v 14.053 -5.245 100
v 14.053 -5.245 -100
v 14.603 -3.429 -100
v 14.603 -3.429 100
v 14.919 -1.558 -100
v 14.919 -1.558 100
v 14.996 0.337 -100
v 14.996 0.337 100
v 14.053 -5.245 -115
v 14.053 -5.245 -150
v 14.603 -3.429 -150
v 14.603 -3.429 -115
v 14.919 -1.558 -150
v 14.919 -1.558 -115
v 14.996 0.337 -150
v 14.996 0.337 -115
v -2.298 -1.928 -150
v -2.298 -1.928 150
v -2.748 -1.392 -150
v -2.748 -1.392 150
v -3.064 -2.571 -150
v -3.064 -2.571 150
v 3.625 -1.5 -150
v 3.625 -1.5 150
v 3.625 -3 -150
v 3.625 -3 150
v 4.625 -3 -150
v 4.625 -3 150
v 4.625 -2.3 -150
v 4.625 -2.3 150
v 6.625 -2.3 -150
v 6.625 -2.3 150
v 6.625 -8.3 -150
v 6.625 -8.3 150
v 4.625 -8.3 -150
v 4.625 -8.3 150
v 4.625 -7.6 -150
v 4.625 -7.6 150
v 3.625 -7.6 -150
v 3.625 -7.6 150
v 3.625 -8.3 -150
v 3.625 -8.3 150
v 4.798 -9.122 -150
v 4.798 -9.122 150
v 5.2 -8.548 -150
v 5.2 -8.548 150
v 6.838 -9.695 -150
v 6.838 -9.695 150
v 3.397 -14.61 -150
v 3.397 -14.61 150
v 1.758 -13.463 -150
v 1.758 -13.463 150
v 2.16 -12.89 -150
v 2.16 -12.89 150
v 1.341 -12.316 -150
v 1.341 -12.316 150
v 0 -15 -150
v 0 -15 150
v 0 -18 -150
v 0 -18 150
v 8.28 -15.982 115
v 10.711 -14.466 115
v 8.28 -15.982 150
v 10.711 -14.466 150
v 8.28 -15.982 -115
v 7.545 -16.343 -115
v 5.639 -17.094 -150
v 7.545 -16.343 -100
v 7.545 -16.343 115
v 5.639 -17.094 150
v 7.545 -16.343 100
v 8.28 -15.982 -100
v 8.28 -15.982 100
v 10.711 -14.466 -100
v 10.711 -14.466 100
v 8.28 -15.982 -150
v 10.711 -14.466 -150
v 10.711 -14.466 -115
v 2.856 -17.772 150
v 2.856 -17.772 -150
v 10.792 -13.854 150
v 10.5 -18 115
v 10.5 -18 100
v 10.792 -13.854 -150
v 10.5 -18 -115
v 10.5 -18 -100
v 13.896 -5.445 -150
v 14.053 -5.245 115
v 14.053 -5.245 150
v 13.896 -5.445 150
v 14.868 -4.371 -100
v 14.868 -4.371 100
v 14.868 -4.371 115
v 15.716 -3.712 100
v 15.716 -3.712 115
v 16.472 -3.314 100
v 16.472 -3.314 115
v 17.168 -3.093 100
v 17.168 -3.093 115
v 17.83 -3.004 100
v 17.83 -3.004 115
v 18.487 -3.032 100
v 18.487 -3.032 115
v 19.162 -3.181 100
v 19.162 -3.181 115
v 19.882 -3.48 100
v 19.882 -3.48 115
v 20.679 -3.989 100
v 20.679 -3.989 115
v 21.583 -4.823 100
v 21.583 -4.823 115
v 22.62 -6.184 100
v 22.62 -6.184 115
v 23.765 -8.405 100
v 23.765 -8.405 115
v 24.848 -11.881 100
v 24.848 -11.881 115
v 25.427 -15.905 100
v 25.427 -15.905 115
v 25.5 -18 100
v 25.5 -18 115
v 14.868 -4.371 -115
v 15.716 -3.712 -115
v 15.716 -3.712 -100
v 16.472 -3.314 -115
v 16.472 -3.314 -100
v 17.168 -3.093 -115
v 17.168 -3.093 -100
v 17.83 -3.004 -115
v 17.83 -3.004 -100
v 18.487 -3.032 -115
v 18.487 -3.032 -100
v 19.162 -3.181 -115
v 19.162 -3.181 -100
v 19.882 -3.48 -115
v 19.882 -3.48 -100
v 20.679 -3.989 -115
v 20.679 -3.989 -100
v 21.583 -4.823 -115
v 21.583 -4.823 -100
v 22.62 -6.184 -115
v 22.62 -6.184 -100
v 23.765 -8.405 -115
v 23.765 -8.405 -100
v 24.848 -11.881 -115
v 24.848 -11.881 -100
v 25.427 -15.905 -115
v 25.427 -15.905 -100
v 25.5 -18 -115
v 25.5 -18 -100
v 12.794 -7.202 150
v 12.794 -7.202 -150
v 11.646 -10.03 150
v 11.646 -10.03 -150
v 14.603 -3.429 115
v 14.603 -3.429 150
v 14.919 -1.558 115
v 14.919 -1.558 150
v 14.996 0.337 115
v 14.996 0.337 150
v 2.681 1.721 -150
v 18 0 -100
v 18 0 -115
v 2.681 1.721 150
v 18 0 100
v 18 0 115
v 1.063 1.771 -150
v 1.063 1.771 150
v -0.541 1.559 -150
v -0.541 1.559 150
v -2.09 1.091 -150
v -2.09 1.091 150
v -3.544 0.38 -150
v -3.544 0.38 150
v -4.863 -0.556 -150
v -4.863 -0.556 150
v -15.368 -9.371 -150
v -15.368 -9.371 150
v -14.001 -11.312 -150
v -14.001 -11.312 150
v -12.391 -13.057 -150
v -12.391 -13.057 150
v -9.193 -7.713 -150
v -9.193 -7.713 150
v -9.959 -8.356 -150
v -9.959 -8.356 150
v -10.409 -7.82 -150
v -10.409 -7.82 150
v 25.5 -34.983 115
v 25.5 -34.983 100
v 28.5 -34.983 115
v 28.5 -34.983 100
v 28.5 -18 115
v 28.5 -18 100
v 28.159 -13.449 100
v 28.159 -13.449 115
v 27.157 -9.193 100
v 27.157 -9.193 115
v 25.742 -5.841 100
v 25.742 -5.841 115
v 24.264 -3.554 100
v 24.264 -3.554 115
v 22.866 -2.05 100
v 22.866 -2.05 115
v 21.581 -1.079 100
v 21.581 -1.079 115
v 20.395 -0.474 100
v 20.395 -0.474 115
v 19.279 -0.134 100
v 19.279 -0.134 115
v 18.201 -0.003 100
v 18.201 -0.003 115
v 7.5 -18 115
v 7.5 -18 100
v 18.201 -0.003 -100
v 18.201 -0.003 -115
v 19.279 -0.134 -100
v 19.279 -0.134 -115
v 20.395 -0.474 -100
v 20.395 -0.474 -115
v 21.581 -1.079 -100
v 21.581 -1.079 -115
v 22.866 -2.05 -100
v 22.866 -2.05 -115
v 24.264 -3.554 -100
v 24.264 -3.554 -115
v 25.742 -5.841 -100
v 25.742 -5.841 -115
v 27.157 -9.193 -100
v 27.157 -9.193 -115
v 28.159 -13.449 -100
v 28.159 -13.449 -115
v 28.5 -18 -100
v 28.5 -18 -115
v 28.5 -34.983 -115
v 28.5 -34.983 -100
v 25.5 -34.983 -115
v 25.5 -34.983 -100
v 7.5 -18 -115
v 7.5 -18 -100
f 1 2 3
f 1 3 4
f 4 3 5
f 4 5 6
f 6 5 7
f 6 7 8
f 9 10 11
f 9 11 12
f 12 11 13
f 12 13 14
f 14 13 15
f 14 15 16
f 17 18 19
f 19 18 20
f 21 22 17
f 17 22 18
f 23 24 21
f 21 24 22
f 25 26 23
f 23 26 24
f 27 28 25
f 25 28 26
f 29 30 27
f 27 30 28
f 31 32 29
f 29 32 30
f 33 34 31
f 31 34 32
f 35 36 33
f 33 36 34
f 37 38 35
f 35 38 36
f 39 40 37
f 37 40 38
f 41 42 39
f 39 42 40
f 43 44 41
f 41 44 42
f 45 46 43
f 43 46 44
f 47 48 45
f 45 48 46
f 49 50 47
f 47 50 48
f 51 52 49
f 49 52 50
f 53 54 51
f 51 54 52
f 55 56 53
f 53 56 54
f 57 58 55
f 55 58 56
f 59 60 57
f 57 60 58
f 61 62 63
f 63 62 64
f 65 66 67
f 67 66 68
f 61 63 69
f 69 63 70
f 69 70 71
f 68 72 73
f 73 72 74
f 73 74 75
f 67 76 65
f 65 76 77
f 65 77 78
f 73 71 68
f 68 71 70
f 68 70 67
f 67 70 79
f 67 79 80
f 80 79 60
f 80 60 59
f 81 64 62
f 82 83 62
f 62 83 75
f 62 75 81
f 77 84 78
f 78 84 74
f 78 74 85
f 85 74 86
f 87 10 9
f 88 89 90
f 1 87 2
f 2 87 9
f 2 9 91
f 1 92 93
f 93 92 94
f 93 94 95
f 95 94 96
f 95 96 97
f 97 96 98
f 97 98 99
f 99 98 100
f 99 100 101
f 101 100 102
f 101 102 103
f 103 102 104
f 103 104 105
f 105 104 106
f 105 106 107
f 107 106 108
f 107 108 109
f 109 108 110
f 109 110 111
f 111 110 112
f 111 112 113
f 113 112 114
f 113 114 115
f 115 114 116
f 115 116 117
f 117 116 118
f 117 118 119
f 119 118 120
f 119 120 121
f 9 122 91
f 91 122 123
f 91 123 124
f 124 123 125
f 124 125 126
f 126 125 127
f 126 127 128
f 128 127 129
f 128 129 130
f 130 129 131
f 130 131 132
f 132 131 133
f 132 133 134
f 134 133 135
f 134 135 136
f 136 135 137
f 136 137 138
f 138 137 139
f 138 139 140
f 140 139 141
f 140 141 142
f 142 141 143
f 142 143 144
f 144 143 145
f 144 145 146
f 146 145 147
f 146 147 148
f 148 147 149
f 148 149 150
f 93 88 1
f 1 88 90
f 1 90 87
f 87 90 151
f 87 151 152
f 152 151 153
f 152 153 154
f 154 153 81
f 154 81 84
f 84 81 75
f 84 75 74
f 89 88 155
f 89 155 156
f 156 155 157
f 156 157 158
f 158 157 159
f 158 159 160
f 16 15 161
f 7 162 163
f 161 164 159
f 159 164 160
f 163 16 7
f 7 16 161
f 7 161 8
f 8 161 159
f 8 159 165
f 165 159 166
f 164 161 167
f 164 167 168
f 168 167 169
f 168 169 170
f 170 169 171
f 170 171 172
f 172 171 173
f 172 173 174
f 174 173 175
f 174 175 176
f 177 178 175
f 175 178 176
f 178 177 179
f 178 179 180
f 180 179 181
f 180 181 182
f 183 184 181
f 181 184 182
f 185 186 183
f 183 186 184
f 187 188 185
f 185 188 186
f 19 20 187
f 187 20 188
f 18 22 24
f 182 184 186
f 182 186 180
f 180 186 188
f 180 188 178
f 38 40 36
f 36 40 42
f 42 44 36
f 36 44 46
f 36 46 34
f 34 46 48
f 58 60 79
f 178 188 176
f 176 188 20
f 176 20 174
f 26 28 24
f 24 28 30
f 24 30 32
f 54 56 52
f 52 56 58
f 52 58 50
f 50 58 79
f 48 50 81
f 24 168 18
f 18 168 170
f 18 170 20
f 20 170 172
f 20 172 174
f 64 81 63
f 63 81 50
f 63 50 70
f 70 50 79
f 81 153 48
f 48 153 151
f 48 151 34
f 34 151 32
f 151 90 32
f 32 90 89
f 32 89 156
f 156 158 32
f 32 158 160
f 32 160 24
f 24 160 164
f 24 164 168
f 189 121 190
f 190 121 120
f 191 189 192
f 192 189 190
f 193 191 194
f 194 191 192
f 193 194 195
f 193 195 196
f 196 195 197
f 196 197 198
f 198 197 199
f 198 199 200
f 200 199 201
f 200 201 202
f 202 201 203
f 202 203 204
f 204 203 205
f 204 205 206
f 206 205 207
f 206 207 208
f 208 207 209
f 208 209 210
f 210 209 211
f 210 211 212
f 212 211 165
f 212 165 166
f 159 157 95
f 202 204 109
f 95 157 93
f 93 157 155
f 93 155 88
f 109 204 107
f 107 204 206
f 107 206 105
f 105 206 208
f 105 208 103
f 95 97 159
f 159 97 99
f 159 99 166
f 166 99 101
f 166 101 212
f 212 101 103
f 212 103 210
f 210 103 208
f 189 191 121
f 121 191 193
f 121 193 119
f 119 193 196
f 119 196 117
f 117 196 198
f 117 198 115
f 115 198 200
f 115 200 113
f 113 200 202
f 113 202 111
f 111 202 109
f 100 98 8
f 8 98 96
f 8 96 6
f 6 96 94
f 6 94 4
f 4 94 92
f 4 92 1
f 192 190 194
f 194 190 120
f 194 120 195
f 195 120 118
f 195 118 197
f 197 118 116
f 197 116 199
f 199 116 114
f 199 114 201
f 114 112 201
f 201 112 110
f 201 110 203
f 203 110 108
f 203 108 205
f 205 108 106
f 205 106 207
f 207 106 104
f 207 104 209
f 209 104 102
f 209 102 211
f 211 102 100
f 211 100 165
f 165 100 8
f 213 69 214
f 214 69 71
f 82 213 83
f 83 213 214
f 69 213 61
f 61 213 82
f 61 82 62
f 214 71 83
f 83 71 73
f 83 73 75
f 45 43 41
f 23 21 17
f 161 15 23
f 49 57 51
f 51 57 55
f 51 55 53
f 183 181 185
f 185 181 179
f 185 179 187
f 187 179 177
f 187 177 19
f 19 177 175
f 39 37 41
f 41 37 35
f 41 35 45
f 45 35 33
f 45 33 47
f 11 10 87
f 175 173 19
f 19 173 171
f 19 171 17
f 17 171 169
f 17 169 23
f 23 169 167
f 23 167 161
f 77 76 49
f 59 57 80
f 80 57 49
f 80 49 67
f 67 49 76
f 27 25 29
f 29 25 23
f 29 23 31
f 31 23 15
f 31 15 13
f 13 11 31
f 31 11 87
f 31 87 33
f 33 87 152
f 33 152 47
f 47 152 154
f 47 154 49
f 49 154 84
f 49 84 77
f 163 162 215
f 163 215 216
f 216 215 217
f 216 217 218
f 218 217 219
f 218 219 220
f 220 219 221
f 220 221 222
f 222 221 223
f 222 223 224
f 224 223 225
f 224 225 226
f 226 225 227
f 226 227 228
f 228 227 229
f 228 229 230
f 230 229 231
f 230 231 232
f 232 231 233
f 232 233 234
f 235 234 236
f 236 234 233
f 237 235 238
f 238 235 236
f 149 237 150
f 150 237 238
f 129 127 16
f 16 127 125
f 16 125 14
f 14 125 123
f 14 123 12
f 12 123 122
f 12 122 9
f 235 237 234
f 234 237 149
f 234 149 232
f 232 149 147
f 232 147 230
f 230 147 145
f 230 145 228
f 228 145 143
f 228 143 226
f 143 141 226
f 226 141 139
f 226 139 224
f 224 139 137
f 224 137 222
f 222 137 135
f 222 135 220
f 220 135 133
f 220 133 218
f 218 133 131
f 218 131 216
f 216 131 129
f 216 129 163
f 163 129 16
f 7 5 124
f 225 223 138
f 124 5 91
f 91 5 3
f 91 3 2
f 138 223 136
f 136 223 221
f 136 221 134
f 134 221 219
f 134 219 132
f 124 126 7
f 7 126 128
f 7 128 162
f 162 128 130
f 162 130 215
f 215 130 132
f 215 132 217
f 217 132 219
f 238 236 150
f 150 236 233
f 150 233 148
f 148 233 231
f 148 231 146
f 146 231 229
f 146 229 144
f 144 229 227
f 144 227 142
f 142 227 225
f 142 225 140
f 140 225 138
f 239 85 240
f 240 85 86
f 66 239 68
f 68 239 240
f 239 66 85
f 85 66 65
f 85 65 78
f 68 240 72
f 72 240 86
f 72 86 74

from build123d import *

# Parameters (mm, degrees)
EXTRUDE_7_DEPTH = 150
EXTRUDE_START   = 100
EXTRUDE_8_DEPTH = 15


with BuildPart() as part:
    # 草图1 → 凸台-拉伸7 (new body)
    with BuildSketch(Plane.XY):
        with BuildLine():
            Line((0, -15), (0, -18))
            ThreePointArc((0, -18), (5.639478957, -17.09374965), (10.711093494, -14.46625301))
            add(Edge.make_bspline(
                [(10.711093494, -14.46625301), (10.848513024, -13.332455818), (11.044833458, -12.194181271), (11.303579228, -11.074971651), (11.624303017, -10.001858622), (12.335244828, -8.106013793), (12.714420239, -7.26834028), (13.132516135, -6.504930588), (13.58190792, -5.828314757), (14.053066301, -5.245124167)],
                knots=[4.061743838, 4.061743838, 4.061743838, 4.061743838, 4.061743838, 4.061743838, 4.459501644, 4.459501644, 4.459501644, 4.459501644, 4.814431955, 4.814431955, 4.814431955, 4.814431955, 4.814431955, 4.814431955], degree=5, weights=[1, 1, 0.99989411, 0.999870278, 1, 1, 0.999879184, 0.999881196, 1, 1]))
            ThreePointArc((14.053066301, -5.245124167), (14.790408025, -2.498765784), (14.99620502, 0.337394434))
            Line((14.99620502, 0.337394434), (2.680600539, 1.720716673))
            ThreePointArc((2.680600539, 1.720716673), (-1.325193951, 1.356623757), (-4.863483604, -0.556347618))
            Line((-4.863483604, -0.556347618), (-15.368319993, -9.370951957))
            ThreePointArc((-15.368319993, -9.370951957), (-14.001248399, -11.31216351), (-12.390572928, -13.056557835))
            Line((-12.390572928, -13.056557835), (-9.192533317, -7.713451316))
            Line((-9.192533317, -7.713451316), (-9.958577761, -8.356238926))
            Line((-9.958577761, -8.356238926), (-10.408529087, -7.820007816))
            Line((-10.408529087, -7.820007816), (-2.748084656, -1.392131719))
            Line((-2.748084656, -1.392131719), (-2.298133329, -1.928362829))
            Line((-2.298133329, -1.928362829), (-3.064177772, -2.571150439))
            Line((-3.064177772, -2.571150439), (3.624750717, -1.5))
            Line((3.624750717, -1.5), (3.624750717, -3))
            Line((3.624750717, -3), (4.624750717, -3))
            Line((4.624750717, -3), (4.624750717, -2.3))
            Line((4.624750717, -2.3), (6.624750717, -2.3))
            Line((6.624750717, -2.3), (6.624750717, -8.3))
            Line((6.624750717, -8.3), (4.624750717, -8.3))
            Line((4.624750717, -8.3), (4.624750717, -7.6))
            Line((4.624750717, -7.6), (3.624750717, -7.6))
            Line((3.624750717, -7.6), (3.624750717, -8.3))
            Line((3.624750717, -8.3), (4.798277046, -9.121711982))
            Line((4.798277046, -9.121711982), (5.199780551, -8.54830555))
            Line((5.199780551, -8.54830555), (6.83808464, -9.695458423))
            Line((6.83808464, -9.695458423), (3.396626022, -14.610370689))
            Line((3.396626022, -14.610370689), (1.758321933, -13.463217816))
            Line((1.758321933, -13.463217816), (2.159825439, -12.889811385))
            Line((2.159825439, -12.889811385), (1.340673394, -12.316234949))
            Line((1.340673394, -12.316234949), (0, -15))
        make_face()
    extrude_7 = extrude(amount=EXTRUDE_7_DEPTH)

    # 草图5 → 凸台-拉伸8 (add)
    with BuildSketch(Plane.XY.offset(EXTRUDE_START)):
        with BuildLine():
            add(Edge.make_bspline(
                [(7.54460871, -16.342548131), (7.5, -17.169509918), (7.5, -18)],
                knots=[7.753410053, 7.753410053, 7.753410053, 7.853981634, 7.853981634, 7.853981634], degree=2, weights=[0.964895842, 0.981247261, 1]))
            Line((7.5, -18), (10.5, -18))
            add(Edge.make_bspline(
                [(10.711093494, -14.46625301), (10.5, -16.207906554), (10.5, -18)],
                knots=[4.459501644, 4.459501644, 4.459501644, 4.71238898, 4.71238898, 4.71238898], degree=2, weights=[0.920875303, 0.952846219, 1]))
            ThreePointArc((10.711093494, -14.46625301), (9.175935189, -15.485548535), (7.54460871, -16.342548131))
        make_face()
        with BuildLine():
            add(Edge.make_bspline(
                [(7.963401142, -12.711579062), (7.64454263, -14.489960749), (7.54460871, -16.342548131)],
                knots=[7.539833715, 7.539833715, 7.539833715, 7.753410053, 7.753410053, 7.753410053], degree=2, weights=[0.906276709, 0.930171557, 0.964895842]))
            ThreePointArc((7.54460871, -16.342548131), (9.175935189, -15.485548535), (10.711093494, -14.46625301))
            add(Edge.make_bspline(
                [(12, -9), (11.074485981, -11.468037385), (10.711093494, -14.46625301)],
                knots=[4.061743838, 4.061743838, 4.061743838, 4.459501644, 4.459501644, 4.459501644], degree=2, weights=[0.857864376, 0.870589347, 0.920875303]))
            ThreePointArc((12, -9), (10.152748449, -11.041815925), (7.963401142, -12.711579062))
        make_face()
        with BuildLine():
            add(Edge.make_bspline(
                [(17.746791844, -3.00855102), (15.751057332, -3.143384219), (14.053066301, -5.245124167)],
                knots=[3.178841958, 3.178841958, 3.178841958, 3.706813527, 3.706813527, 3.706813527], degree=2, weights=[0.986438278, 0.892660895, 0.865062576]))
            ThreePointArc((17.746791844, -3.00855102), (17.936586258, -1.509593787), (18, 0))
            add(Edge.make_bspline(
                [(18, 0), (16.457794493, 0), (14.980723149, -0.760219655)],
                knots=[6.283185307, 6.283185307, 6.283185307, 6.590751519, 6.590751519, 6.590751519], degree=2, weights=[1, 0.942650708, 0.907759712]))
            ThreePointArc((14.980723149, -0.760219655), (14.689071604, -3.038284946), (14.053066301, -5.245124167))
        make_face()
        with BuildLine():
            ThreePointArc((18, 0), (17.936586258, -1.509593787), (17.746791844, -3.00855102))
            add(Edge.make_bspline(
                [(25.5, -18), (25.5, -3), (18, -3), (17.873359825, -3), (17.746791844, -3.00855102)],
                knots=[1.570796327, 1.570796327, 1.570796327, 3.141592654, 3.141592654, 3.178841958, 3.178841958, 3.178841958], degree=2, weights=[1, 0.707106781, 1, 0.993054435, 0.986438278]))
            Line((25.5, -18), (25.5, -34.982946992))
            Line((25.5, -34.982946992), (28.5, -34.982946992))
            Line((28.5, -34.982946992), (28.5, -18))
            add(Edge.make_bspline(
                [(28.5, -18), (28.5, 0), (18, 0)],
                knots=[4.71238898, 4.71238898, 4.71238898, 6.283185307, 6.283185307, 6.283185307], degree=2, weights=[1, 0.707106781, 1]))
        make_face()
        with BuildLine():
            ThreePointArc((15, 0), (14.995180013, -0.380232008), (14.980723149, -0.760219655))
            add(Edge.make_bspline(
                [(18, 0), (16.457794493, 0), (14.980723149, -0.760219655)],
                knots=[6.283185307, 6.283185307, 6.283185307, 6.590751519, 6.590751519, 6.590751519], degree=2, weights=[1, 0.942650708, 0.907759712]))
            Line((18, 0), (14.99620502, 0.337394434))
            ThreePointArc((14.99620502, 0.337394434), (14.999051225, 0.168707888), (15, 0))
        make_face()
    extrude_8 = extrude(amount=EXTRUDE_8_DEPTH)

    # 镜向1: 凸台-拉伸7, 凸台-拉伸8 across plane
    add(extrude_7.mirror(Plane.XY))
    add(extrude_8.mirror(Plane.XY))


solid = part.part
